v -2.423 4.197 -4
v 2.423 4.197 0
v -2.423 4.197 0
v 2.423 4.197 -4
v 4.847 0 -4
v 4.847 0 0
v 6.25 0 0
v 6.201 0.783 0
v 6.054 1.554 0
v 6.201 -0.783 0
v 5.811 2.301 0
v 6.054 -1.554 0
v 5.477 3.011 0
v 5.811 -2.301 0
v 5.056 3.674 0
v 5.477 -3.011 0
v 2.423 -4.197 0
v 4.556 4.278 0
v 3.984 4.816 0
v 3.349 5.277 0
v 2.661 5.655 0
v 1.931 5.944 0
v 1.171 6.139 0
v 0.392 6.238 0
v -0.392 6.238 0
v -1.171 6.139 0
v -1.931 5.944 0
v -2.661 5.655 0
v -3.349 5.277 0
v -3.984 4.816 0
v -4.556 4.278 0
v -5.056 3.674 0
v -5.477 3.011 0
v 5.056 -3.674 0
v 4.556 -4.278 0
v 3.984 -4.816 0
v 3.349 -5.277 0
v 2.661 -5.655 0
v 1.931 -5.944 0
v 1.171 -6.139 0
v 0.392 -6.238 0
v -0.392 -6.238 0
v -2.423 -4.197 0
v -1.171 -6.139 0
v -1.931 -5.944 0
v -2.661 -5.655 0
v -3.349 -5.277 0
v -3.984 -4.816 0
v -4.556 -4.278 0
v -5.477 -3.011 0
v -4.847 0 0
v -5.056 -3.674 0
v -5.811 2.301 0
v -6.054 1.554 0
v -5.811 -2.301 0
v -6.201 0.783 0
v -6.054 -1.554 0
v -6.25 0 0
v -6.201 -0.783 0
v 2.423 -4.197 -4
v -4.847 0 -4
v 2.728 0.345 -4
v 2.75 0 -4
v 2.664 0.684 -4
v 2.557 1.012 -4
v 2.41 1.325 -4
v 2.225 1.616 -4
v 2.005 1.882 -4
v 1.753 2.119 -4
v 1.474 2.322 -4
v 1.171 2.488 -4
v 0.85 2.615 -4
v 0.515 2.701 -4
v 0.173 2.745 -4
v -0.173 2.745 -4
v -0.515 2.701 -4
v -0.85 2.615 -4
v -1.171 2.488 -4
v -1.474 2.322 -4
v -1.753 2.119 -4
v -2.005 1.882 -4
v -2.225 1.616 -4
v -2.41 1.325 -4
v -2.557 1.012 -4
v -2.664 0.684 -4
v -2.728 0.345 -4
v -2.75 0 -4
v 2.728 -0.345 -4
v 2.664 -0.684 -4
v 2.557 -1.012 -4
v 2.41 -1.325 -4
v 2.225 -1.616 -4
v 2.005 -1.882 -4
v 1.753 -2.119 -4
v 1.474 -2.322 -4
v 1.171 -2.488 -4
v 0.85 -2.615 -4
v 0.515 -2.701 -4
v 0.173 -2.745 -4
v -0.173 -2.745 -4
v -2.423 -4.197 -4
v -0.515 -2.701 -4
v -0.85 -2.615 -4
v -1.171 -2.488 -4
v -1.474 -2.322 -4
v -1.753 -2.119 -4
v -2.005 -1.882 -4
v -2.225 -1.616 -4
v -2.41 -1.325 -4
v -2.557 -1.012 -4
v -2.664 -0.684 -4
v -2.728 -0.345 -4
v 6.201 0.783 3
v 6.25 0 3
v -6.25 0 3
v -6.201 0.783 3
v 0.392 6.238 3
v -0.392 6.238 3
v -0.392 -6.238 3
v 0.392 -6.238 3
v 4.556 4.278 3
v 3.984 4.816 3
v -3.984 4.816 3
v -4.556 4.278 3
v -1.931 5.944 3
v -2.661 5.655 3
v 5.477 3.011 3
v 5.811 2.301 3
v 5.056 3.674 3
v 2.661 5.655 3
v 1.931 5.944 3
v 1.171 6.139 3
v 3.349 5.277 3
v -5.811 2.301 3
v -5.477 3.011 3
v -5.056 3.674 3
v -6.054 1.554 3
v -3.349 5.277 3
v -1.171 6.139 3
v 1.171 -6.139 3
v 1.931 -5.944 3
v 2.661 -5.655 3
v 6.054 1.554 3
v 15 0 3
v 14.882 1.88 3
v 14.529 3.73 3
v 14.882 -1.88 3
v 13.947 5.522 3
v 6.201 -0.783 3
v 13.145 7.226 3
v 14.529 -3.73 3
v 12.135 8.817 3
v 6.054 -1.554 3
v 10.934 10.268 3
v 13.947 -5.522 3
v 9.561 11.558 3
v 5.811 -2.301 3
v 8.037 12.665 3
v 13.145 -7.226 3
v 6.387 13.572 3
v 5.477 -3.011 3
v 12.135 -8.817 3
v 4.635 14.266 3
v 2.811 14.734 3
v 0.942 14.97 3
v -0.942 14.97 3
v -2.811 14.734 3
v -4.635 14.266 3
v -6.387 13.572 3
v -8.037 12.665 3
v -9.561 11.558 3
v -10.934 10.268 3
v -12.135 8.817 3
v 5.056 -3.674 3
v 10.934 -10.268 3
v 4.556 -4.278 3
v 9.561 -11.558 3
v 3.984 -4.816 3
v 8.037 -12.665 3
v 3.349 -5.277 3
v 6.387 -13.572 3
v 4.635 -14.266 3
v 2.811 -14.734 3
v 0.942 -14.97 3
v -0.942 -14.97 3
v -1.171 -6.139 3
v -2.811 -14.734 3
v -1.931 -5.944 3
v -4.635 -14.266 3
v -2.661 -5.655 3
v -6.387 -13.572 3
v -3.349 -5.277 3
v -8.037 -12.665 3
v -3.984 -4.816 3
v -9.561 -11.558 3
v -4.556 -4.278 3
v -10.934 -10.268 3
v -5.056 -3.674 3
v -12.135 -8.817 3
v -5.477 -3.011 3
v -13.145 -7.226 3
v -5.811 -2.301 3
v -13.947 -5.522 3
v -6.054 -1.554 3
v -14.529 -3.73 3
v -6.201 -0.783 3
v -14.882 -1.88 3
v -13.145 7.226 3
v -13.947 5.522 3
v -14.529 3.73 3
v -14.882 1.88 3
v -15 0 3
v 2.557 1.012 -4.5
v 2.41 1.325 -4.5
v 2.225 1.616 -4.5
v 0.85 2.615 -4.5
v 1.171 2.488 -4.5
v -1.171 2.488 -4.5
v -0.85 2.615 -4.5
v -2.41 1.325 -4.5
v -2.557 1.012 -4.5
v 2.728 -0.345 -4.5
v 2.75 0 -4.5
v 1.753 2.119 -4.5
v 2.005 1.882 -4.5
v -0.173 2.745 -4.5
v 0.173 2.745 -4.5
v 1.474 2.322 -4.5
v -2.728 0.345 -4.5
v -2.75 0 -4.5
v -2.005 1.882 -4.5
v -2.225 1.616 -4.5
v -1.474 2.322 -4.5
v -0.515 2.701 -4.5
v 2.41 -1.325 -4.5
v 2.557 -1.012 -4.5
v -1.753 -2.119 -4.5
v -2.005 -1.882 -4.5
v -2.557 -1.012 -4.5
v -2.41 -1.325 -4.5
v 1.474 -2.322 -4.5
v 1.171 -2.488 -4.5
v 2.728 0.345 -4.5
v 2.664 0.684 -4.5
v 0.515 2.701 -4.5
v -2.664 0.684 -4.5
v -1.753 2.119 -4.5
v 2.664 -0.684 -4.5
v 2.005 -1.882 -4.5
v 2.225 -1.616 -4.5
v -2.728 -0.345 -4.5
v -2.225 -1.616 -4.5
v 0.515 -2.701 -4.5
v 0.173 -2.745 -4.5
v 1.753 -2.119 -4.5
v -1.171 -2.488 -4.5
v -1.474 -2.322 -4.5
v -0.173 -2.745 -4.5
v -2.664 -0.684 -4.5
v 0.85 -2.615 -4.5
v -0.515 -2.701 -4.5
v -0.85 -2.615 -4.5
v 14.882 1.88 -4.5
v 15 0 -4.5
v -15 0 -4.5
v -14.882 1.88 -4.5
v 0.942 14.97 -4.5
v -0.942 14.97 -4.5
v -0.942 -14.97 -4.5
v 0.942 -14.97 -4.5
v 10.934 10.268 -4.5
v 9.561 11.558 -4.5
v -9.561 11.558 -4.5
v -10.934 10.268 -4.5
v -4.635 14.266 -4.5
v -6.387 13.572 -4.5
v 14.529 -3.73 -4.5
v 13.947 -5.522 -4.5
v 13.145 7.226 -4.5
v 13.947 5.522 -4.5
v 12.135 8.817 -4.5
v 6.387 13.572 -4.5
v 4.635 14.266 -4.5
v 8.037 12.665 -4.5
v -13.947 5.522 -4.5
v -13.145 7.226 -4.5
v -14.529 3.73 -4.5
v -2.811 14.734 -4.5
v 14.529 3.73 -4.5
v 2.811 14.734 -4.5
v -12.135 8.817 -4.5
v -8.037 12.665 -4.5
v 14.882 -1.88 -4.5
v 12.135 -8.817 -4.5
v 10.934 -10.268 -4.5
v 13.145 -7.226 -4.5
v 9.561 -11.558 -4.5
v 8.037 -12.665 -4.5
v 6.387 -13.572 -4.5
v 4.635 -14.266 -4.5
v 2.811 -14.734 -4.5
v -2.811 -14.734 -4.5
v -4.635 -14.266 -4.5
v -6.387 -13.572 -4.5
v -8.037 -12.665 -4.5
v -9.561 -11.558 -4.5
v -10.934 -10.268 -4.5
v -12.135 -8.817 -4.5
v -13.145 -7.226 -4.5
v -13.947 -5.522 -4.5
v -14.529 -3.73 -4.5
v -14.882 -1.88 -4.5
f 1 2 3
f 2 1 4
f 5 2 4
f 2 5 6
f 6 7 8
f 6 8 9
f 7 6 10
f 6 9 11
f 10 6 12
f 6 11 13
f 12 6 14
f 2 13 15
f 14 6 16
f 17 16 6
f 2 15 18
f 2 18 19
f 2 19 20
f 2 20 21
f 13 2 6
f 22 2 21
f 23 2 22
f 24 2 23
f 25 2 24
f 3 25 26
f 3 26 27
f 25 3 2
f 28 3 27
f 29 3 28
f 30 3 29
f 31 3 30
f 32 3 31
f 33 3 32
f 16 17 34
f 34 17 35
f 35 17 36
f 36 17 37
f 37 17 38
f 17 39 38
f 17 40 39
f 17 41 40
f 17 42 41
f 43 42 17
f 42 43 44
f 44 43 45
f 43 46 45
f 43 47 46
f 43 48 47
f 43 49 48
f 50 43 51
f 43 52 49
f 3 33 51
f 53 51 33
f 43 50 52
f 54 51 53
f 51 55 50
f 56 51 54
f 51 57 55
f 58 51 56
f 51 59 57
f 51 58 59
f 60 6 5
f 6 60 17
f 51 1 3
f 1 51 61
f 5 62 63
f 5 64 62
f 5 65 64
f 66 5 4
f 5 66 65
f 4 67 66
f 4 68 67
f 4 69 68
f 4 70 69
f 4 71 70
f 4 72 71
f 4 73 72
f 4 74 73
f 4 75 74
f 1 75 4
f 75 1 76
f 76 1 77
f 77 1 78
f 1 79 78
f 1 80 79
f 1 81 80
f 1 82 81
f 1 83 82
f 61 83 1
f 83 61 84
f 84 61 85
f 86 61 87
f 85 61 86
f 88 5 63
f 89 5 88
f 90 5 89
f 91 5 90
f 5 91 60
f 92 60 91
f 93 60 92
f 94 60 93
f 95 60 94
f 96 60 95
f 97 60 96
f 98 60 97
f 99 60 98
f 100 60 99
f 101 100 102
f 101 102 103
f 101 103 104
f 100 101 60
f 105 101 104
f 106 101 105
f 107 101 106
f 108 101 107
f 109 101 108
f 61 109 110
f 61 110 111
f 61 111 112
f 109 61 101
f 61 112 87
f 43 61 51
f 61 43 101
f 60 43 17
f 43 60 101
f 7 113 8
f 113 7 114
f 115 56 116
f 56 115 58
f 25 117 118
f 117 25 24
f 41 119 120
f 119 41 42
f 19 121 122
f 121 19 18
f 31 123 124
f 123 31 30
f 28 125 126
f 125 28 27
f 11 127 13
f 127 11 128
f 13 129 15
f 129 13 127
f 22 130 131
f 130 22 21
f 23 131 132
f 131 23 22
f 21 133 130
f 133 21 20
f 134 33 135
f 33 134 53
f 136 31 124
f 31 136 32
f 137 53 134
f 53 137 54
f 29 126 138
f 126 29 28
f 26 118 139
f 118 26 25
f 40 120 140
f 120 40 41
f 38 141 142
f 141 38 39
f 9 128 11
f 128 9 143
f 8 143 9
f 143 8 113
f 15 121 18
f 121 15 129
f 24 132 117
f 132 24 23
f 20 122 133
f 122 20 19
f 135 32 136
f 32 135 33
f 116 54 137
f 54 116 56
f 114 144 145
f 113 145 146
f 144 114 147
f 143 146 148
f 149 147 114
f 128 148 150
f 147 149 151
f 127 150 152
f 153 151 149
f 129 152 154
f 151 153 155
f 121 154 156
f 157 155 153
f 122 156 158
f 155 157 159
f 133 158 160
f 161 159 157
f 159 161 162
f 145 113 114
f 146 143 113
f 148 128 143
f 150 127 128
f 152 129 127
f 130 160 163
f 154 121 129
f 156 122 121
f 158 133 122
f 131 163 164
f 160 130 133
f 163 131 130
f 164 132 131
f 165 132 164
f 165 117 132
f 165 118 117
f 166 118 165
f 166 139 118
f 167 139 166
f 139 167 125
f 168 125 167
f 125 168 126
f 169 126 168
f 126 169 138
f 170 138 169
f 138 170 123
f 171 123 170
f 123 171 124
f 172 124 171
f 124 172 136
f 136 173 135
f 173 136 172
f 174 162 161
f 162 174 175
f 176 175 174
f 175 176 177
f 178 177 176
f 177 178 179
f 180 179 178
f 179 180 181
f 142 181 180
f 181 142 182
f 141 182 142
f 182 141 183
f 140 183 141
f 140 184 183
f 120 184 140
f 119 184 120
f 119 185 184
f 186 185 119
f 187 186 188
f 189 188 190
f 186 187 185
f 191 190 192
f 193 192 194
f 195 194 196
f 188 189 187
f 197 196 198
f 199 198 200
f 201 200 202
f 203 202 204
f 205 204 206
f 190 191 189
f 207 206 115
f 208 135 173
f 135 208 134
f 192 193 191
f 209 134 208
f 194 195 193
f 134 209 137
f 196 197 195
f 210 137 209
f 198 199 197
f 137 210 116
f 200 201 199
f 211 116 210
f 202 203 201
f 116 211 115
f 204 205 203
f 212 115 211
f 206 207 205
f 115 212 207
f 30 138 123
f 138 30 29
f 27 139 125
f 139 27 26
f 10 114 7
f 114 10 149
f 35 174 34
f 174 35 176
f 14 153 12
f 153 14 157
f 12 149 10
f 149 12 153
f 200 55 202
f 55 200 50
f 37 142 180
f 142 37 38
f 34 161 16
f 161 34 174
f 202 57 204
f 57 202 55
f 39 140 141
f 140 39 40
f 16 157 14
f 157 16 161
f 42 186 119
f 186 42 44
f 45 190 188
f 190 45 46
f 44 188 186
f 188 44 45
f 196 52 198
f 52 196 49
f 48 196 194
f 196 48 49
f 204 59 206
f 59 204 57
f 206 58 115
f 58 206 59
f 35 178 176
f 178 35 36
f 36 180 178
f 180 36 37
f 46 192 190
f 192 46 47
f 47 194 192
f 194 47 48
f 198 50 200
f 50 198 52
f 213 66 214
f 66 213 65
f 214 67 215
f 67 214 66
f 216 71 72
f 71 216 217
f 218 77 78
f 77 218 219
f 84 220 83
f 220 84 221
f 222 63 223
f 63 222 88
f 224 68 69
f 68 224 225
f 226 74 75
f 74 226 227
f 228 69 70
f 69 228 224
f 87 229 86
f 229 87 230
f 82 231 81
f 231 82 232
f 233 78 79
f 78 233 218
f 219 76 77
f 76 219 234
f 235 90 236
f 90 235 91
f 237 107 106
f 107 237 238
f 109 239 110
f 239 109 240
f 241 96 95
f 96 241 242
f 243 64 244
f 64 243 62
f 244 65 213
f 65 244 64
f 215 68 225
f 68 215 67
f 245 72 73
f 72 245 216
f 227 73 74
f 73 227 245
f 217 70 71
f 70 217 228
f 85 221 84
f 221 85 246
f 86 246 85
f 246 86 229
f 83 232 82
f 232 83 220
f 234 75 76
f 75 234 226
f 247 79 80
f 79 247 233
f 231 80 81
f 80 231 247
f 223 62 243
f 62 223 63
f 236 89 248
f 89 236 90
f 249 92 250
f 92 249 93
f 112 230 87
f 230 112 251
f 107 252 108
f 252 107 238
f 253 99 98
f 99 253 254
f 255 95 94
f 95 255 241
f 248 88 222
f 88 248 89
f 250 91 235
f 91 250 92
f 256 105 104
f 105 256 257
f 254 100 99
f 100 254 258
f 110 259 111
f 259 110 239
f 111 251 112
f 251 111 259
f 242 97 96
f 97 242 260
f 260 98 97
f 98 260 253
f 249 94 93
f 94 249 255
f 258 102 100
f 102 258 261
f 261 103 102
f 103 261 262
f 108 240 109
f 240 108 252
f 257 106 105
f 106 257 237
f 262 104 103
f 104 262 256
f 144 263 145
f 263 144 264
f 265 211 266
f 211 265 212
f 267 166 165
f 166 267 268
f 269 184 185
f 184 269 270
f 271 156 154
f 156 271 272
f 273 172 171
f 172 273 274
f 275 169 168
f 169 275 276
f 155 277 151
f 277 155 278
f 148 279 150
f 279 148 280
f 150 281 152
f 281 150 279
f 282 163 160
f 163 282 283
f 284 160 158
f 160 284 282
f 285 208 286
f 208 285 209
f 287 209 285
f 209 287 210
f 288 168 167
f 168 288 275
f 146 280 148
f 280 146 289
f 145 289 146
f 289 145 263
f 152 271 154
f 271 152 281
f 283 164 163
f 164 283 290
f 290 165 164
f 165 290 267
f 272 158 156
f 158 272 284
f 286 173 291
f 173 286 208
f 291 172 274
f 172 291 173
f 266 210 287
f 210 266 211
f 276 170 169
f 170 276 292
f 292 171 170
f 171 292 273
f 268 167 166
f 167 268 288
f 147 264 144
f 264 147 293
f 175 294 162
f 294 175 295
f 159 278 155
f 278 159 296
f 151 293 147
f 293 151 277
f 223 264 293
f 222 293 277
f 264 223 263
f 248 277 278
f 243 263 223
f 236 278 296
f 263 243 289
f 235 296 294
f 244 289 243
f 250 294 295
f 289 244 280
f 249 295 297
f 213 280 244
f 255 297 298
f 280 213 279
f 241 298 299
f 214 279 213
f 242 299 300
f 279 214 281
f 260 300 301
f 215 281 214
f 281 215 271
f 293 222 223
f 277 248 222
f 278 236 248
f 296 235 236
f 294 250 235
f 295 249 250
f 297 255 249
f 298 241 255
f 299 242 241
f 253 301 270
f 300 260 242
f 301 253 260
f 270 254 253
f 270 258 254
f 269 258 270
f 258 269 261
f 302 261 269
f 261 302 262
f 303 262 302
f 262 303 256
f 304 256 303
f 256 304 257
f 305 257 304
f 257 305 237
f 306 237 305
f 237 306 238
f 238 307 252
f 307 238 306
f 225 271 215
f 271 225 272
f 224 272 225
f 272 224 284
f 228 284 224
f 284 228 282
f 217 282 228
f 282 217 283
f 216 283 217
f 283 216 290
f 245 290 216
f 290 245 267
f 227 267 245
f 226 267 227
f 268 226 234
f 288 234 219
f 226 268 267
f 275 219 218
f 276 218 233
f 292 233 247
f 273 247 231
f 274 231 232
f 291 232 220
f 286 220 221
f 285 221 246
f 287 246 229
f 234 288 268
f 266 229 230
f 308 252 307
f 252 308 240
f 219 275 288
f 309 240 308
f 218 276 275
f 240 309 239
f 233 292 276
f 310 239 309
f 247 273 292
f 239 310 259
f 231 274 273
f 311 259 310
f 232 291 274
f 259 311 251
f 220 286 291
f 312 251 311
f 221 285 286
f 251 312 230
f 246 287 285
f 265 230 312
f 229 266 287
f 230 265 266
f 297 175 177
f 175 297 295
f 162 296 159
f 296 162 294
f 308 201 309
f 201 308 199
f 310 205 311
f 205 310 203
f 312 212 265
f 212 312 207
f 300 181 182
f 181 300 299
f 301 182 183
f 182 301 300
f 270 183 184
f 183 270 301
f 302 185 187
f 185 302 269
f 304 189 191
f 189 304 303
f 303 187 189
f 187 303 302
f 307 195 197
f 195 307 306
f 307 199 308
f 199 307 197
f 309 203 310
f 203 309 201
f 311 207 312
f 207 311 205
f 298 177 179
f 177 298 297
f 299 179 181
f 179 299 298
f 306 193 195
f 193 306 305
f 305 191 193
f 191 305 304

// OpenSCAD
$fn = 50;


difference() {
	union() {
		translate(v = [0, 0, -4.5000000000]) {
			cylinder(h = 7.5000000000, r = 15.0000000000);
		}
	}
	union() {
		translate(v = [0, 0, 0]) {
			rotate(a = [0, 0, 0]) {
				difference() {
					union() {
						translate(v = [0, 0, -4]) {
							linear_extrude(height = 4) {
								polygon(points = [[4.8468000000, 0.0000000000], [2.4234000000, 4.1974519271], [-2.4234000000, 4.1974519271], [-4.8468000000, 0.0000000000], [-2.4234000000, -4.1974519271], [2.4234000000, -4.1974519271]]);
							}
						}
					}
					union();
				}
			}
		}
		#cylinder(h = 3, r = 6.2500000000);
		#translate(v = [0, 0, -100.0000000000]) {
			cylinder(h = 200, r = 2.7500000000);
		}
	}
}
